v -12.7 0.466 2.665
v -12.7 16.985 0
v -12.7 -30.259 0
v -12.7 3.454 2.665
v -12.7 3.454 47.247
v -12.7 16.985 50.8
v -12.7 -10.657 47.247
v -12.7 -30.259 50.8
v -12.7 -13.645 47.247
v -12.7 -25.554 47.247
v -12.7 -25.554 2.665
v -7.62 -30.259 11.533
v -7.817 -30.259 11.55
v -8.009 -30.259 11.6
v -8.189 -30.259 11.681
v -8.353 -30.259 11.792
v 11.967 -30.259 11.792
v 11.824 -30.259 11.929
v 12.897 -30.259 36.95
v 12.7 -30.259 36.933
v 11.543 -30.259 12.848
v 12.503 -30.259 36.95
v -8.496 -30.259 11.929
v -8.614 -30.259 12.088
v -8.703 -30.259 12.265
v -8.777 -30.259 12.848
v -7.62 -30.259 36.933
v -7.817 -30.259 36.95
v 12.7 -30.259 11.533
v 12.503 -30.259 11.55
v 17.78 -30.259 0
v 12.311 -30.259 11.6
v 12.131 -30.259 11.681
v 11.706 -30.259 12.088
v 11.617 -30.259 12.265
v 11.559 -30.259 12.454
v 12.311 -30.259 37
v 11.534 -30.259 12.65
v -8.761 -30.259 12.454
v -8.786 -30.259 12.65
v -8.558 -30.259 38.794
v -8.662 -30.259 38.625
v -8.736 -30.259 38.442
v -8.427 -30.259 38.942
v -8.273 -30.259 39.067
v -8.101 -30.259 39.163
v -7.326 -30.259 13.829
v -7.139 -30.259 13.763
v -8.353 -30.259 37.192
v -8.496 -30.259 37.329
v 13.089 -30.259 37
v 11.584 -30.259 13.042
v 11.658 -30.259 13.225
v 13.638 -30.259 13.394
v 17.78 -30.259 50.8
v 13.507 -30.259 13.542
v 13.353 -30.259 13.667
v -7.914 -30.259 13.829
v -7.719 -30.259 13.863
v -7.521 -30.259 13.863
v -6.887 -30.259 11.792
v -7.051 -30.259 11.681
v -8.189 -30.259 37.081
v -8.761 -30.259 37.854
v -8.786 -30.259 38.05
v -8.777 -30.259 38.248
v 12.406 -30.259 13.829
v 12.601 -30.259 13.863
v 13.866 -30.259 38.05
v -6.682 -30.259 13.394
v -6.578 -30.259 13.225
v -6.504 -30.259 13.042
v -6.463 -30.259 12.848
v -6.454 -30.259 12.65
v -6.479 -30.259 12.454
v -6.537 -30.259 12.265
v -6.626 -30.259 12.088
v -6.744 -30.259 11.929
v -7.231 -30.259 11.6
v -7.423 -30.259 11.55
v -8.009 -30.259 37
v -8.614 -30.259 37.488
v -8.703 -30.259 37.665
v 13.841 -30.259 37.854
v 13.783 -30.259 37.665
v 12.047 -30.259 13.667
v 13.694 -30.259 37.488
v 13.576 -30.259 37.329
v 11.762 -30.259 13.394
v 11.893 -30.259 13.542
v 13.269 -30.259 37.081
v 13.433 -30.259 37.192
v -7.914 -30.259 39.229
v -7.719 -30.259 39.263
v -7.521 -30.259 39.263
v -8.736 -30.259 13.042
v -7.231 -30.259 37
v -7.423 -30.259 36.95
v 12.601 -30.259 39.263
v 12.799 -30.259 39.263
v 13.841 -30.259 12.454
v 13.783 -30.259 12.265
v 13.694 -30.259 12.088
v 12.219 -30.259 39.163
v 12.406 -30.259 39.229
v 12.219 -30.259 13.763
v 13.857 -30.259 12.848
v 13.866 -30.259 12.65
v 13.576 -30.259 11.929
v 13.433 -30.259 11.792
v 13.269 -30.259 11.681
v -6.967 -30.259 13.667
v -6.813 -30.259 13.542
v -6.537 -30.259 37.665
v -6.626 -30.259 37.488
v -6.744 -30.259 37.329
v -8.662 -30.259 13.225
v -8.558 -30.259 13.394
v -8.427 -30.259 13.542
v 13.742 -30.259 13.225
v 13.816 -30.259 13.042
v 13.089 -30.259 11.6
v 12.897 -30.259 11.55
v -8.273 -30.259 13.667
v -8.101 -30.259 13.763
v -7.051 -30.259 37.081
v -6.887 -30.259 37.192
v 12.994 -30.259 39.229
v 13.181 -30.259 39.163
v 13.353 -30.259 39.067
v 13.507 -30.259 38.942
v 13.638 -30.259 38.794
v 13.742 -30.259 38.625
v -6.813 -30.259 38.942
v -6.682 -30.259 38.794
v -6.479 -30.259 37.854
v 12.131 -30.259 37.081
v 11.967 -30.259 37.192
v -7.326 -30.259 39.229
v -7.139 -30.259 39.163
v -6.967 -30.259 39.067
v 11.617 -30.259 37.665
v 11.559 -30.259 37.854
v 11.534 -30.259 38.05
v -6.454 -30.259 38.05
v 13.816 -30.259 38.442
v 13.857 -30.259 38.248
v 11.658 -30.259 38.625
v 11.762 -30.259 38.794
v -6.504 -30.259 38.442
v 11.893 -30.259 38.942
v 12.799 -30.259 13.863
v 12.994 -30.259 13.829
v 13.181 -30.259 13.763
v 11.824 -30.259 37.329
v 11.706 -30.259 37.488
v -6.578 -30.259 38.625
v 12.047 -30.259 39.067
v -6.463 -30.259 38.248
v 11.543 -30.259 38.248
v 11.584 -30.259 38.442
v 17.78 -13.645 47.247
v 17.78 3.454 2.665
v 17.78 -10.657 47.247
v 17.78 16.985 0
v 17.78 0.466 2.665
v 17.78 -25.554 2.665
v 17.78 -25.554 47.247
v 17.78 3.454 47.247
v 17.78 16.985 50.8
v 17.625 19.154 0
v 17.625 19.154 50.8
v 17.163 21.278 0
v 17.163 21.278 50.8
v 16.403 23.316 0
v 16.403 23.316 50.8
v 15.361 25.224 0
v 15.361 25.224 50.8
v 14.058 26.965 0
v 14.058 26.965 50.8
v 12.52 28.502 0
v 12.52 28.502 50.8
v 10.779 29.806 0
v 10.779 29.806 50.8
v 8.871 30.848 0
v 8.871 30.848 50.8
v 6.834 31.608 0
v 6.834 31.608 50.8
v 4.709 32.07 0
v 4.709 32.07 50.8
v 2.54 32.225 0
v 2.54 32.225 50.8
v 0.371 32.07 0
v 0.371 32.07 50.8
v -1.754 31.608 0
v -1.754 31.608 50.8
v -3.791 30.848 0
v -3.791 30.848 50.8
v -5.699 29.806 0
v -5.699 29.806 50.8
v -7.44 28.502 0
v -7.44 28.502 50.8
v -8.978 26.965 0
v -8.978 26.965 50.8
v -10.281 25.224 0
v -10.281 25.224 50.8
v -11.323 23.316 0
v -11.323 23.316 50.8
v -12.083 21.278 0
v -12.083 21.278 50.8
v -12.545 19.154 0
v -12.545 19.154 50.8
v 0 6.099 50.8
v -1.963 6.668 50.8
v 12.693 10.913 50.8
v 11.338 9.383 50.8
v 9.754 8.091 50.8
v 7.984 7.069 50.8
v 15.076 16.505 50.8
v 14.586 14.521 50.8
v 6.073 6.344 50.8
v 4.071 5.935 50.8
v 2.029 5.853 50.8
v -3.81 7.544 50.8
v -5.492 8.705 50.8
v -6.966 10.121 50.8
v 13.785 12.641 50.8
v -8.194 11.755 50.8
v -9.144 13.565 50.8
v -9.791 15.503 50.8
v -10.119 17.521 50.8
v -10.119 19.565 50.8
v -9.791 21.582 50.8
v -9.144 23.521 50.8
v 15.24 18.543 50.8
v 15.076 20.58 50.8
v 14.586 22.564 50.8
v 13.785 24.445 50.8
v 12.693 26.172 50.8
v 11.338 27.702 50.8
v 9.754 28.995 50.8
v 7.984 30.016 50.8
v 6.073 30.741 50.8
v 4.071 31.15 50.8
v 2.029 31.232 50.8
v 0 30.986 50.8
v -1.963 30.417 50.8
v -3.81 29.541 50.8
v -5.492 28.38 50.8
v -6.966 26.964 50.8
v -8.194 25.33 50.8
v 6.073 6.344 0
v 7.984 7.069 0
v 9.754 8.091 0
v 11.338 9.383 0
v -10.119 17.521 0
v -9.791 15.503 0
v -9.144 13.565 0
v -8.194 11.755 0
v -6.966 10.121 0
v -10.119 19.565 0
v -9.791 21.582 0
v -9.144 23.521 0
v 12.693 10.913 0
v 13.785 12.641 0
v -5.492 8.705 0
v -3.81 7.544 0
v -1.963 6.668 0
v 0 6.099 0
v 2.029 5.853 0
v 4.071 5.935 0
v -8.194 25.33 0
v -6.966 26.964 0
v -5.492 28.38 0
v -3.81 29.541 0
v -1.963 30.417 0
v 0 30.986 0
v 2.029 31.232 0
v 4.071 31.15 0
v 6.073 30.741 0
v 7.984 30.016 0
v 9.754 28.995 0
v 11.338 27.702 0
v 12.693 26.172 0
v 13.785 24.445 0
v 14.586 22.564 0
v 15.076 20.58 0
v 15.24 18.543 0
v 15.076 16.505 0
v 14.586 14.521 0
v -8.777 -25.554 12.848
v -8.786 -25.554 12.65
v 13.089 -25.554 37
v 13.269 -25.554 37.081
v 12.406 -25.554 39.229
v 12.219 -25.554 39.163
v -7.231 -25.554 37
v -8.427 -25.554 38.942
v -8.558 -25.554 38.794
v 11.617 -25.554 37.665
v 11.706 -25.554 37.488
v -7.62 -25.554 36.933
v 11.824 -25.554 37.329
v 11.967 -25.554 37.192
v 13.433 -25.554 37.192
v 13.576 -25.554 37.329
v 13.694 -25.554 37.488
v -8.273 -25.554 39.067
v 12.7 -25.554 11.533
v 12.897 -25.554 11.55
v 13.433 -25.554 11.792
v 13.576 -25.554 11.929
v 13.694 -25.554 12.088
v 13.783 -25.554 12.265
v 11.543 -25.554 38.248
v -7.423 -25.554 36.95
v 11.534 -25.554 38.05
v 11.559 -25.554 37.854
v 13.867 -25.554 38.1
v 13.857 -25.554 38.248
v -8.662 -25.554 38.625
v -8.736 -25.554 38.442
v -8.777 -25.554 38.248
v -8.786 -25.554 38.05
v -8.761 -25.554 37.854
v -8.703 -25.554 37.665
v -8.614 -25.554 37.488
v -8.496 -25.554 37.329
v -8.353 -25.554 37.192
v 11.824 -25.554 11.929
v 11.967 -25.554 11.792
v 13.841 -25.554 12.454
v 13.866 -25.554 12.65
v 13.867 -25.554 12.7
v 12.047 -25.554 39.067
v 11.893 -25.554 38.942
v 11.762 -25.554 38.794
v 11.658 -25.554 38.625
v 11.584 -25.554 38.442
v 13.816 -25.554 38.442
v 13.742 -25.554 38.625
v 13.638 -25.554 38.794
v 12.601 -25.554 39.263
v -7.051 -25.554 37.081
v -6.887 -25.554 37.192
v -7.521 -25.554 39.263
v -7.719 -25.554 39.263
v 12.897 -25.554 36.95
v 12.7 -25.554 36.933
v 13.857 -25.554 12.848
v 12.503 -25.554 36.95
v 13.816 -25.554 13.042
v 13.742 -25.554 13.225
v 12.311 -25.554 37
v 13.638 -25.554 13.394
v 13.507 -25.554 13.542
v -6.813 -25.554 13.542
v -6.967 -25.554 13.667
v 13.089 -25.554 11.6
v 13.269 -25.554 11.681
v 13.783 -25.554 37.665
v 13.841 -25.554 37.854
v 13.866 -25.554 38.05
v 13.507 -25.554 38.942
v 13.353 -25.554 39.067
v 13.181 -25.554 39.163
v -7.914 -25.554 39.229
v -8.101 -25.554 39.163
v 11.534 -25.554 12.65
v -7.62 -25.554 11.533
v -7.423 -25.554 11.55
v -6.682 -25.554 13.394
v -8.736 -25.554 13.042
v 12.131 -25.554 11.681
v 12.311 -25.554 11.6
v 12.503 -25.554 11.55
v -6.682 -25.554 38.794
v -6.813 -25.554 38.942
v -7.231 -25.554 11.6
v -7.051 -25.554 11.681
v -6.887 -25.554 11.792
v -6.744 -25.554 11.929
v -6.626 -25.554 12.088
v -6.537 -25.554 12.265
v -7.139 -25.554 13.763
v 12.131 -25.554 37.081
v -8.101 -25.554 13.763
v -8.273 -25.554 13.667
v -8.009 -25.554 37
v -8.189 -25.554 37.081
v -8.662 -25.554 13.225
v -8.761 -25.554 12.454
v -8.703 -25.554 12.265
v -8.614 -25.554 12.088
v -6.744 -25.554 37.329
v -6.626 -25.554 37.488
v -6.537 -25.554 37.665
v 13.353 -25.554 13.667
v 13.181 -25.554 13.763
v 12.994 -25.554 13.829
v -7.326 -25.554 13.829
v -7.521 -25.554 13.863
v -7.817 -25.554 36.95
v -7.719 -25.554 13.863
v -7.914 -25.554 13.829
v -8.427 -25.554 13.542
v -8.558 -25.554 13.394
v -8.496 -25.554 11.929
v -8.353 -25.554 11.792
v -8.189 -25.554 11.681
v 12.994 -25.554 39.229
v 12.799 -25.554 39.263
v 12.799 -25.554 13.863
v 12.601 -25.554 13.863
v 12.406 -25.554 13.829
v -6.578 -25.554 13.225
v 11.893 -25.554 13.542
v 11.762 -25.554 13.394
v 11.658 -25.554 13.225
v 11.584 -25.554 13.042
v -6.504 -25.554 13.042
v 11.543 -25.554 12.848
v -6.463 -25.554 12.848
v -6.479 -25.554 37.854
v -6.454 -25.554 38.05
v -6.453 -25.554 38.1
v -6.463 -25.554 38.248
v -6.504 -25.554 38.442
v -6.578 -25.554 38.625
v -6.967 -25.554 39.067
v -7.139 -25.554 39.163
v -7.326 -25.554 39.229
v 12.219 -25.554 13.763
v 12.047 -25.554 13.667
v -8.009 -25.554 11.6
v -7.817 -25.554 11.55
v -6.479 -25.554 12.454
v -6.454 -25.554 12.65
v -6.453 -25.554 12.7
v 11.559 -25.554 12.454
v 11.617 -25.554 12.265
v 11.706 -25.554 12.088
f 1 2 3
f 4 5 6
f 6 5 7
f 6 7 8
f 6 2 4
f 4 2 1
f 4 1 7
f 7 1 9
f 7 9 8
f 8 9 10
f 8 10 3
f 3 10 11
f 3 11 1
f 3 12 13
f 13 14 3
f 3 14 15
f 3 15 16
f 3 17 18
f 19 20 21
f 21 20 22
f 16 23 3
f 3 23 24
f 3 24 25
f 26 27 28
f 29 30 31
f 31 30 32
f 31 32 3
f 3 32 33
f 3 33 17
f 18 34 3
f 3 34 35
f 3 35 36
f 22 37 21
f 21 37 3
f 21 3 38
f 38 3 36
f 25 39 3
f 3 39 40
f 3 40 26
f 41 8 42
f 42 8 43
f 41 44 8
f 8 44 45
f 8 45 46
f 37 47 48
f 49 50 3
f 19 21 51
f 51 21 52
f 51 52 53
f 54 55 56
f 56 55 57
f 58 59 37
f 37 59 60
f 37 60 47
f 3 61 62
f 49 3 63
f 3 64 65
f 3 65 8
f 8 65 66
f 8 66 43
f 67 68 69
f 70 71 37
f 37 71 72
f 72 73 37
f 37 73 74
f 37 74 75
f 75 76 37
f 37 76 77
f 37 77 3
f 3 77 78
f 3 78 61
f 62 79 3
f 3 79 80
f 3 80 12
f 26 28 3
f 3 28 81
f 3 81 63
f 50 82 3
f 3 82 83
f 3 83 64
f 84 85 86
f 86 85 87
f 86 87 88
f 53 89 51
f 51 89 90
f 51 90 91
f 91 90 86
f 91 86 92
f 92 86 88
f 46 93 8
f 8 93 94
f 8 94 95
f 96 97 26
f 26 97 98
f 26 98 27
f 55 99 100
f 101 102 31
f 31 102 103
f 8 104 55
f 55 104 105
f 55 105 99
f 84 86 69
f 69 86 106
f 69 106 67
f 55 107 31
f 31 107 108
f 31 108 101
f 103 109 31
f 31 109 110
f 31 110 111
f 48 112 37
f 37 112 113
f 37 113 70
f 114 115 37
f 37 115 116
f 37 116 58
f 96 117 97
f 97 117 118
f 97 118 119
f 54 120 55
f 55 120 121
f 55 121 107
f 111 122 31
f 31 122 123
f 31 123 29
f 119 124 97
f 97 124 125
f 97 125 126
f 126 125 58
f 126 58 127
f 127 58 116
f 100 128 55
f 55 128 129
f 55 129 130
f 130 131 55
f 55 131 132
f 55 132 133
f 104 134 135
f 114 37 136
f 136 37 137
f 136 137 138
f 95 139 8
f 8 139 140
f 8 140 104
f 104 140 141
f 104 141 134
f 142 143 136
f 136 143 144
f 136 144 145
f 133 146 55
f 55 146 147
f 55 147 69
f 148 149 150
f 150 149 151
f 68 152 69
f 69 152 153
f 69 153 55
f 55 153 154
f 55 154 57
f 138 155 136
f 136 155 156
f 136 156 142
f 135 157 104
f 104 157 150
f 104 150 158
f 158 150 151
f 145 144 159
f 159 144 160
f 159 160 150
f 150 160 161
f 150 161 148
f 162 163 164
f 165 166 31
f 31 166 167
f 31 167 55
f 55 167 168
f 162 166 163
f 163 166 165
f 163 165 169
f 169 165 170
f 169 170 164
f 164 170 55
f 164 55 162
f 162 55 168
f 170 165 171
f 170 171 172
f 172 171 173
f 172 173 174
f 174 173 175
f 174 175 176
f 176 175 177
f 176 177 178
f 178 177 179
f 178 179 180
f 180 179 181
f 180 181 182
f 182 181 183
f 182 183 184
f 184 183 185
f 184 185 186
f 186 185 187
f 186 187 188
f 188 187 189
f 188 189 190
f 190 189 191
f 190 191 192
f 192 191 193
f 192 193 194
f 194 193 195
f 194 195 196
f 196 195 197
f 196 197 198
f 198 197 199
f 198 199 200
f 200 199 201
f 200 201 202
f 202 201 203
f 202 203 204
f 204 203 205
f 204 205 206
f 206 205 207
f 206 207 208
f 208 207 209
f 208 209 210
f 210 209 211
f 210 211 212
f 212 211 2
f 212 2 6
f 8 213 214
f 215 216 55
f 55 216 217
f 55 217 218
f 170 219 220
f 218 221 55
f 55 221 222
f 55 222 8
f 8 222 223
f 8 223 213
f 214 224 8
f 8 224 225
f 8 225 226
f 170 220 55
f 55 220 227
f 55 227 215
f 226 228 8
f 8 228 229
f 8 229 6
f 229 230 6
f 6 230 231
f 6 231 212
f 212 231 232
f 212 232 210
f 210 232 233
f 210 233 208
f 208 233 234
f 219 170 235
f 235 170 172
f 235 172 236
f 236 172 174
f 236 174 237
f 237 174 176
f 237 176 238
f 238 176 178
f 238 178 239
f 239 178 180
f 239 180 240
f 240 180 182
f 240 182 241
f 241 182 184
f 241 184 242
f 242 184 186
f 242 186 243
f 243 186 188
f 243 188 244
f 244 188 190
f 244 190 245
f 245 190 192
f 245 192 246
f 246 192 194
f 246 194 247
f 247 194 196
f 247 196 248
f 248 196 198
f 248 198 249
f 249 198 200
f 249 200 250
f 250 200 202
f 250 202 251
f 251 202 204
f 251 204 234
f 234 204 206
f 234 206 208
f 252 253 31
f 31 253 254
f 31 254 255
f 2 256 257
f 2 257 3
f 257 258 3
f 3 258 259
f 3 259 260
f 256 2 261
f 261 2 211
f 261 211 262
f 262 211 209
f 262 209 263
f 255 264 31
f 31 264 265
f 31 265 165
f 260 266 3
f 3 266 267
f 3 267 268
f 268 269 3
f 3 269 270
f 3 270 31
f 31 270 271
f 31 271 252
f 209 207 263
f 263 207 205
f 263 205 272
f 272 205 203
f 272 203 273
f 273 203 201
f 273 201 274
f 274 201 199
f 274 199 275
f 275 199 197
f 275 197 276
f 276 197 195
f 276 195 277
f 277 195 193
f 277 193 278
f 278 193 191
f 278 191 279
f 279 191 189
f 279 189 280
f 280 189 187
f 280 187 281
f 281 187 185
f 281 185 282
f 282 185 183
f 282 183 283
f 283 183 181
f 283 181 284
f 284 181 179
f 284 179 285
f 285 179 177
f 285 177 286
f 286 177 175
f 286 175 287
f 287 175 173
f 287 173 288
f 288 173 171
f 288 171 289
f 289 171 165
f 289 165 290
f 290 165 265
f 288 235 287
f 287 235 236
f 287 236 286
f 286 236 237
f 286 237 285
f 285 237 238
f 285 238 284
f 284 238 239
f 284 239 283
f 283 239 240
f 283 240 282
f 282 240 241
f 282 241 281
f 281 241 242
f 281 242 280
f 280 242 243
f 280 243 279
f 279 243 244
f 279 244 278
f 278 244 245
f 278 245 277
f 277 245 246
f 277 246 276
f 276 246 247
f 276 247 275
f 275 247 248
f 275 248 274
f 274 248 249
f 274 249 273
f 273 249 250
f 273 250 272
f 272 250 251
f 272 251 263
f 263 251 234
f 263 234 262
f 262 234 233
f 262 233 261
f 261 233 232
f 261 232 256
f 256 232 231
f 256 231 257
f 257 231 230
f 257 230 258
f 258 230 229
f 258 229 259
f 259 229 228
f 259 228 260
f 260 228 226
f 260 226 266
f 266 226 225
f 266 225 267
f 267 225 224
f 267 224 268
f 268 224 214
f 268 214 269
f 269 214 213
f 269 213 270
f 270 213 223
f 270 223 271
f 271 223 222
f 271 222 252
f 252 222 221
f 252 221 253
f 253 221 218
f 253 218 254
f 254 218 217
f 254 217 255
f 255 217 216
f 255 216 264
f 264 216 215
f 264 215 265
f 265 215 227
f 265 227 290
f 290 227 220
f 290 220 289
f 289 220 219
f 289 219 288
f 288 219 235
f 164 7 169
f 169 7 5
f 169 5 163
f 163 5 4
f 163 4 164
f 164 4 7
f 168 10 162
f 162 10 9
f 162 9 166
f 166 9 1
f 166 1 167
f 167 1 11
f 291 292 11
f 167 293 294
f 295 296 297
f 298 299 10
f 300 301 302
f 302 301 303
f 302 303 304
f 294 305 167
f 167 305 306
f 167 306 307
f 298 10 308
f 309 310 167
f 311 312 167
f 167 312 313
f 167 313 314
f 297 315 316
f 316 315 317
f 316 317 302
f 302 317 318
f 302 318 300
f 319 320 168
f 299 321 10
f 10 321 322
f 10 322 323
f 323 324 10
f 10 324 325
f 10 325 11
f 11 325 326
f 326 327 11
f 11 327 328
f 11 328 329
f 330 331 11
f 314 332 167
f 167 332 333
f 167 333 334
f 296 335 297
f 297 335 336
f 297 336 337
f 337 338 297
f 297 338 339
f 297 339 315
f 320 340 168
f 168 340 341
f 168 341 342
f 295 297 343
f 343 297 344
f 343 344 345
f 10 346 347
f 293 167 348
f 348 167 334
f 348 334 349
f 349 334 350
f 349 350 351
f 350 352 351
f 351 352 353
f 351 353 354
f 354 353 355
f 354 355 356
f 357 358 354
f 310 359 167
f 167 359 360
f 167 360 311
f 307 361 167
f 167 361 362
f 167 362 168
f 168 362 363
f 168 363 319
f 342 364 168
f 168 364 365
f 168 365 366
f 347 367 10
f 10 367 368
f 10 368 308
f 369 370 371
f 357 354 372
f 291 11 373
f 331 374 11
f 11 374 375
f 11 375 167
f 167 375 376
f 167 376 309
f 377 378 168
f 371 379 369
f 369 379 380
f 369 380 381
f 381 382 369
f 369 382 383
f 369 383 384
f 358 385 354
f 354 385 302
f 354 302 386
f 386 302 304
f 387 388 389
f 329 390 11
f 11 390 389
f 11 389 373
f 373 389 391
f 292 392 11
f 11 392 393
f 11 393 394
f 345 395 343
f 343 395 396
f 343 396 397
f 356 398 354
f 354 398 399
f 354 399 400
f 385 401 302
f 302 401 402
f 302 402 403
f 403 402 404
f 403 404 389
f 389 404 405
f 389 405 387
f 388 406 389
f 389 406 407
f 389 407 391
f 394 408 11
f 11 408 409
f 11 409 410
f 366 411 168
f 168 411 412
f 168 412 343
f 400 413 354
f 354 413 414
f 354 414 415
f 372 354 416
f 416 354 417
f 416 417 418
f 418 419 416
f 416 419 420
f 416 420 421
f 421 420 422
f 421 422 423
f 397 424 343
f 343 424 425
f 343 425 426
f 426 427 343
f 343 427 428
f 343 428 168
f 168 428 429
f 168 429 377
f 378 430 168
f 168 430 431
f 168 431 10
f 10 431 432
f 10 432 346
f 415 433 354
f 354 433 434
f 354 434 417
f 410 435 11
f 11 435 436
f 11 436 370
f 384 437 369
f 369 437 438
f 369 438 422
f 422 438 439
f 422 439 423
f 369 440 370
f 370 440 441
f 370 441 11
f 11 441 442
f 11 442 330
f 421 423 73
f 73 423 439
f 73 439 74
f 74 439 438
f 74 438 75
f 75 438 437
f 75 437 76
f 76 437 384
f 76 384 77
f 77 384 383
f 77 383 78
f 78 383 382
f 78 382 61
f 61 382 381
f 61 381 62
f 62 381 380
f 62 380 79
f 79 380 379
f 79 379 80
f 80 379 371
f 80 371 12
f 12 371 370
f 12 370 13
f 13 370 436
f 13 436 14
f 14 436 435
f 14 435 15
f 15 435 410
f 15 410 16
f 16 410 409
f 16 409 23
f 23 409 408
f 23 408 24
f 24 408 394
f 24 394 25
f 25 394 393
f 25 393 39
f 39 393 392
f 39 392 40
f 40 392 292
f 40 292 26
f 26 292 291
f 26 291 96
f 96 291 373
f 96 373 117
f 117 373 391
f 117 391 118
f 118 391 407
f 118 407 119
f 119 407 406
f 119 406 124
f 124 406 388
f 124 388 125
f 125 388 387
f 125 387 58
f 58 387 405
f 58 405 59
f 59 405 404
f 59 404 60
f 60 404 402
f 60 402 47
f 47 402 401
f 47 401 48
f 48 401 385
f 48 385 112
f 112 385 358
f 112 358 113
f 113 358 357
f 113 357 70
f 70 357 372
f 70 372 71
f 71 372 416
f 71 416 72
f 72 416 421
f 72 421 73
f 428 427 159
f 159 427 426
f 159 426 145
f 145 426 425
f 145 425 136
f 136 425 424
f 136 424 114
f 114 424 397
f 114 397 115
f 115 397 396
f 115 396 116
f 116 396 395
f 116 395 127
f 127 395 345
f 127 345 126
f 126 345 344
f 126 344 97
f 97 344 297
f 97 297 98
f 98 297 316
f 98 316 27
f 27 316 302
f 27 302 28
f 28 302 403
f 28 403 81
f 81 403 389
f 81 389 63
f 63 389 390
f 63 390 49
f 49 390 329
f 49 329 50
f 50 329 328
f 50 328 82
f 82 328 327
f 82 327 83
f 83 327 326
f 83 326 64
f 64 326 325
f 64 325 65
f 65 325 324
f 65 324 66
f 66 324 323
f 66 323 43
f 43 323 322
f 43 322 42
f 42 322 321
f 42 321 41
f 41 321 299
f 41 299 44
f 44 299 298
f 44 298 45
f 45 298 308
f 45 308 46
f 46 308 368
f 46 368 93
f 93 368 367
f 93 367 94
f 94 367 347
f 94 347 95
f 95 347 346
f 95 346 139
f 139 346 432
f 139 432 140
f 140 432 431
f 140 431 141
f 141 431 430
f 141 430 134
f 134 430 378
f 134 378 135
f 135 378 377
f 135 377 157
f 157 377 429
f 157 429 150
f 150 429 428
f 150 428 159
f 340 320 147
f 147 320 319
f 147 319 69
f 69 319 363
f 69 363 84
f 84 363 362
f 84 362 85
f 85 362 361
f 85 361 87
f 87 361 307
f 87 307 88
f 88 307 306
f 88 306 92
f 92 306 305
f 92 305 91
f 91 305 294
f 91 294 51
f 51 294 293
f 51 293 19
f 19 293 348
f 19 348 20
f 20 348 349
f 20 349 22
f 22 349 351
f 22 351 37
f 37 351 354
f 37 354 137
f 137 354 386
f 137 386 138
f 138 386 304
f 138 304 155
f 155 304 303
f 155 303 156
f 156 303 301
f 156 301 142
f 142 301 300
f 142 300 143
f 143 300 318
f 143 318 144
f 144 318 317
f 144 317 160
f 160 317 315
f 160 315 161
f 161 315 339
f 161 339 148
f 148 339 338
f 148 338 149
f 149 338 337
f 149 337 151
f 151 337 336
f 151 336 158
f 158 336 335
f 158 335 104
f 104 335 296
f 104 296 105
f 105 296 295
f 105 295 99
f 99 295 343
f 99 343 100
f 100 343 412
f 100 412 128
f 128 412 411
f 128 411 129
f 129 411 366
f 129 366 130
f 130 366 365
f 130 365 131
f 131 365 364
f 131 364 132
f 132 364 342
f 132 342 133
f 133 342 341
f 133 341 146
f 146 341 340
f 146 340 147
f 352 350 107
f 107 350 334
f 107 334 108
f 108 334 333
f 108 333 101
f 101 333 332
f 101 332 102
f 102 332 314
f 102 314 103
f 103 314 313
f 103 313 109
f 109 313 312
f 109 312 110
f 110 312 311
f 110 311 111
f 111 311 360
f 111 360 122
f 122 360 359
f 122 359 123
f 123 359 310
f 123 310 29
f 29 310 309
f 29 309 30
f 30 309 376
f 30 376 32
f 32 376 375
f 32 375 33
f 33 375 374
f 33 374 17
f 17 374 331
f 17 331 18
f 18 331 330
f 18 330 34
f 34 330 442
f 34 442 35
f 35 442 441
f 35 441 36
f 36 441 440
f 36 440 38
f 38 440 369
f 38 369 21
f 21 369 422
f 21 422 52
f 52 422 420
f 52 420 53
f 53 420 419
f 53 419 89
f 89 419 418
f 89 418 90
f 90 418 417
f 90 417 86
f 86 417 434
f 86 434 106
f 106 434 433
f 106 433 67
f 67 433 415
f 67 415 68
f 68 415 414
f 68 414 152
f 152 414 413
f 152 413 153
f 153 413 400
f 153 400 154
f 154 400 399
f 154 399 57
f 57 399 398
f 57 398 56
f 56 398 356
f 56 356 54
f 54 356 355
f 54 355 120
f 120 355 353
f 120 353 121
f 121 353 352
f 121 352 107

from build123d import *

# Parameters (mm, degrees)
BOSS_EXTRUDE1_DEPTH = 50.8
SKETCH2_R           = 12.7
CUT_EXTRUDE1_DEPTH  = 50.8
CUT_EXTRUDE2_DEPTH  = 50.8
SKETCH5_R           = 1.166747446
CUT_EXTRUDE3_DEPTH  = 7.62


with BuildPart() as part:
    # Sketch1 → Boss-Extrude1 (new body)
    with BuildSketch(Plane.XY):
        with BuildLine():
            Line((17.78, 16.984869565), (17.78, -30.259130435))
            Line((17.78, -30.259130435), (-12.7, -30.259130435))
            Line((-12.7, -30.259130435), (-12.7, 16.984869565))
            ThreePointArc((-12.7, 16.984869565), (2.54, 32.224869565), (17.78, 16.984869565))
        make_face()
    extrude(amount=BOSS_EXTRUDE1_DEPTH)

    # Sketch2 → Cut-Extrude1 (cut)
    with BuildSketch(Plane.XY.offset(50.8)):
        with Locations((2.54, 18.54261415)):
            Circle(SKETCH2_R)
    extrude(amount=-CUT_EXTRUDE1_DEPTH, mode=Mode.SUBTRACT)

    # Sketch4 → Cut-Extrude2 (cut)
    with BuildSketch(Plane(origin=(17.78, 0, 0), x_dir=(0, 0, -1), z_dir=(1, 0, 0))):
        Polygon((-47.247044422, 3.453714402), (-2.664546428, 3.453714402), (-47.247044422, -10.657322195), align=None)
        Polygon((-47.247044422, -13.645405957), (-2.664546428, 0.46563064), (-2.664546428, -25.553882978), (-47.247044422, -25.553882978), align=None)
    extrude(amount=-CUT_EXTRUDE2_DEPTH, mode=Mode.SUBTRACT)

    # Sketch5 → Cut-Extrude3 (cut)
    with BuildSketch(Plane(origin=(0, -30.259130435, 0), x_dir=(-1, 0, 0), z_dir=(0, -1, 0))):
        with Locations(Location((7.62, -12.7, 0), (0, 0, 90))):
            Circle(SKETCH5_R)
        with Locations(Location((7.62, -38.1, 0), (0, 0, 90))):
            Circle(SKETCH5_R)
        with Locations(Location((-12.7, -38.1, 0), (0, 0, 90))):
            Circle(SKETCH5_R)
        with Locations(Location((-12.7, -12.7, 0), (0, 0, 90))):
            Circle(SKETCH5_R)
    extrude(amount=-CUT_EXTRUDE3_DEPTH, mode=Mode.SUBTRACT)


solid = part.part
